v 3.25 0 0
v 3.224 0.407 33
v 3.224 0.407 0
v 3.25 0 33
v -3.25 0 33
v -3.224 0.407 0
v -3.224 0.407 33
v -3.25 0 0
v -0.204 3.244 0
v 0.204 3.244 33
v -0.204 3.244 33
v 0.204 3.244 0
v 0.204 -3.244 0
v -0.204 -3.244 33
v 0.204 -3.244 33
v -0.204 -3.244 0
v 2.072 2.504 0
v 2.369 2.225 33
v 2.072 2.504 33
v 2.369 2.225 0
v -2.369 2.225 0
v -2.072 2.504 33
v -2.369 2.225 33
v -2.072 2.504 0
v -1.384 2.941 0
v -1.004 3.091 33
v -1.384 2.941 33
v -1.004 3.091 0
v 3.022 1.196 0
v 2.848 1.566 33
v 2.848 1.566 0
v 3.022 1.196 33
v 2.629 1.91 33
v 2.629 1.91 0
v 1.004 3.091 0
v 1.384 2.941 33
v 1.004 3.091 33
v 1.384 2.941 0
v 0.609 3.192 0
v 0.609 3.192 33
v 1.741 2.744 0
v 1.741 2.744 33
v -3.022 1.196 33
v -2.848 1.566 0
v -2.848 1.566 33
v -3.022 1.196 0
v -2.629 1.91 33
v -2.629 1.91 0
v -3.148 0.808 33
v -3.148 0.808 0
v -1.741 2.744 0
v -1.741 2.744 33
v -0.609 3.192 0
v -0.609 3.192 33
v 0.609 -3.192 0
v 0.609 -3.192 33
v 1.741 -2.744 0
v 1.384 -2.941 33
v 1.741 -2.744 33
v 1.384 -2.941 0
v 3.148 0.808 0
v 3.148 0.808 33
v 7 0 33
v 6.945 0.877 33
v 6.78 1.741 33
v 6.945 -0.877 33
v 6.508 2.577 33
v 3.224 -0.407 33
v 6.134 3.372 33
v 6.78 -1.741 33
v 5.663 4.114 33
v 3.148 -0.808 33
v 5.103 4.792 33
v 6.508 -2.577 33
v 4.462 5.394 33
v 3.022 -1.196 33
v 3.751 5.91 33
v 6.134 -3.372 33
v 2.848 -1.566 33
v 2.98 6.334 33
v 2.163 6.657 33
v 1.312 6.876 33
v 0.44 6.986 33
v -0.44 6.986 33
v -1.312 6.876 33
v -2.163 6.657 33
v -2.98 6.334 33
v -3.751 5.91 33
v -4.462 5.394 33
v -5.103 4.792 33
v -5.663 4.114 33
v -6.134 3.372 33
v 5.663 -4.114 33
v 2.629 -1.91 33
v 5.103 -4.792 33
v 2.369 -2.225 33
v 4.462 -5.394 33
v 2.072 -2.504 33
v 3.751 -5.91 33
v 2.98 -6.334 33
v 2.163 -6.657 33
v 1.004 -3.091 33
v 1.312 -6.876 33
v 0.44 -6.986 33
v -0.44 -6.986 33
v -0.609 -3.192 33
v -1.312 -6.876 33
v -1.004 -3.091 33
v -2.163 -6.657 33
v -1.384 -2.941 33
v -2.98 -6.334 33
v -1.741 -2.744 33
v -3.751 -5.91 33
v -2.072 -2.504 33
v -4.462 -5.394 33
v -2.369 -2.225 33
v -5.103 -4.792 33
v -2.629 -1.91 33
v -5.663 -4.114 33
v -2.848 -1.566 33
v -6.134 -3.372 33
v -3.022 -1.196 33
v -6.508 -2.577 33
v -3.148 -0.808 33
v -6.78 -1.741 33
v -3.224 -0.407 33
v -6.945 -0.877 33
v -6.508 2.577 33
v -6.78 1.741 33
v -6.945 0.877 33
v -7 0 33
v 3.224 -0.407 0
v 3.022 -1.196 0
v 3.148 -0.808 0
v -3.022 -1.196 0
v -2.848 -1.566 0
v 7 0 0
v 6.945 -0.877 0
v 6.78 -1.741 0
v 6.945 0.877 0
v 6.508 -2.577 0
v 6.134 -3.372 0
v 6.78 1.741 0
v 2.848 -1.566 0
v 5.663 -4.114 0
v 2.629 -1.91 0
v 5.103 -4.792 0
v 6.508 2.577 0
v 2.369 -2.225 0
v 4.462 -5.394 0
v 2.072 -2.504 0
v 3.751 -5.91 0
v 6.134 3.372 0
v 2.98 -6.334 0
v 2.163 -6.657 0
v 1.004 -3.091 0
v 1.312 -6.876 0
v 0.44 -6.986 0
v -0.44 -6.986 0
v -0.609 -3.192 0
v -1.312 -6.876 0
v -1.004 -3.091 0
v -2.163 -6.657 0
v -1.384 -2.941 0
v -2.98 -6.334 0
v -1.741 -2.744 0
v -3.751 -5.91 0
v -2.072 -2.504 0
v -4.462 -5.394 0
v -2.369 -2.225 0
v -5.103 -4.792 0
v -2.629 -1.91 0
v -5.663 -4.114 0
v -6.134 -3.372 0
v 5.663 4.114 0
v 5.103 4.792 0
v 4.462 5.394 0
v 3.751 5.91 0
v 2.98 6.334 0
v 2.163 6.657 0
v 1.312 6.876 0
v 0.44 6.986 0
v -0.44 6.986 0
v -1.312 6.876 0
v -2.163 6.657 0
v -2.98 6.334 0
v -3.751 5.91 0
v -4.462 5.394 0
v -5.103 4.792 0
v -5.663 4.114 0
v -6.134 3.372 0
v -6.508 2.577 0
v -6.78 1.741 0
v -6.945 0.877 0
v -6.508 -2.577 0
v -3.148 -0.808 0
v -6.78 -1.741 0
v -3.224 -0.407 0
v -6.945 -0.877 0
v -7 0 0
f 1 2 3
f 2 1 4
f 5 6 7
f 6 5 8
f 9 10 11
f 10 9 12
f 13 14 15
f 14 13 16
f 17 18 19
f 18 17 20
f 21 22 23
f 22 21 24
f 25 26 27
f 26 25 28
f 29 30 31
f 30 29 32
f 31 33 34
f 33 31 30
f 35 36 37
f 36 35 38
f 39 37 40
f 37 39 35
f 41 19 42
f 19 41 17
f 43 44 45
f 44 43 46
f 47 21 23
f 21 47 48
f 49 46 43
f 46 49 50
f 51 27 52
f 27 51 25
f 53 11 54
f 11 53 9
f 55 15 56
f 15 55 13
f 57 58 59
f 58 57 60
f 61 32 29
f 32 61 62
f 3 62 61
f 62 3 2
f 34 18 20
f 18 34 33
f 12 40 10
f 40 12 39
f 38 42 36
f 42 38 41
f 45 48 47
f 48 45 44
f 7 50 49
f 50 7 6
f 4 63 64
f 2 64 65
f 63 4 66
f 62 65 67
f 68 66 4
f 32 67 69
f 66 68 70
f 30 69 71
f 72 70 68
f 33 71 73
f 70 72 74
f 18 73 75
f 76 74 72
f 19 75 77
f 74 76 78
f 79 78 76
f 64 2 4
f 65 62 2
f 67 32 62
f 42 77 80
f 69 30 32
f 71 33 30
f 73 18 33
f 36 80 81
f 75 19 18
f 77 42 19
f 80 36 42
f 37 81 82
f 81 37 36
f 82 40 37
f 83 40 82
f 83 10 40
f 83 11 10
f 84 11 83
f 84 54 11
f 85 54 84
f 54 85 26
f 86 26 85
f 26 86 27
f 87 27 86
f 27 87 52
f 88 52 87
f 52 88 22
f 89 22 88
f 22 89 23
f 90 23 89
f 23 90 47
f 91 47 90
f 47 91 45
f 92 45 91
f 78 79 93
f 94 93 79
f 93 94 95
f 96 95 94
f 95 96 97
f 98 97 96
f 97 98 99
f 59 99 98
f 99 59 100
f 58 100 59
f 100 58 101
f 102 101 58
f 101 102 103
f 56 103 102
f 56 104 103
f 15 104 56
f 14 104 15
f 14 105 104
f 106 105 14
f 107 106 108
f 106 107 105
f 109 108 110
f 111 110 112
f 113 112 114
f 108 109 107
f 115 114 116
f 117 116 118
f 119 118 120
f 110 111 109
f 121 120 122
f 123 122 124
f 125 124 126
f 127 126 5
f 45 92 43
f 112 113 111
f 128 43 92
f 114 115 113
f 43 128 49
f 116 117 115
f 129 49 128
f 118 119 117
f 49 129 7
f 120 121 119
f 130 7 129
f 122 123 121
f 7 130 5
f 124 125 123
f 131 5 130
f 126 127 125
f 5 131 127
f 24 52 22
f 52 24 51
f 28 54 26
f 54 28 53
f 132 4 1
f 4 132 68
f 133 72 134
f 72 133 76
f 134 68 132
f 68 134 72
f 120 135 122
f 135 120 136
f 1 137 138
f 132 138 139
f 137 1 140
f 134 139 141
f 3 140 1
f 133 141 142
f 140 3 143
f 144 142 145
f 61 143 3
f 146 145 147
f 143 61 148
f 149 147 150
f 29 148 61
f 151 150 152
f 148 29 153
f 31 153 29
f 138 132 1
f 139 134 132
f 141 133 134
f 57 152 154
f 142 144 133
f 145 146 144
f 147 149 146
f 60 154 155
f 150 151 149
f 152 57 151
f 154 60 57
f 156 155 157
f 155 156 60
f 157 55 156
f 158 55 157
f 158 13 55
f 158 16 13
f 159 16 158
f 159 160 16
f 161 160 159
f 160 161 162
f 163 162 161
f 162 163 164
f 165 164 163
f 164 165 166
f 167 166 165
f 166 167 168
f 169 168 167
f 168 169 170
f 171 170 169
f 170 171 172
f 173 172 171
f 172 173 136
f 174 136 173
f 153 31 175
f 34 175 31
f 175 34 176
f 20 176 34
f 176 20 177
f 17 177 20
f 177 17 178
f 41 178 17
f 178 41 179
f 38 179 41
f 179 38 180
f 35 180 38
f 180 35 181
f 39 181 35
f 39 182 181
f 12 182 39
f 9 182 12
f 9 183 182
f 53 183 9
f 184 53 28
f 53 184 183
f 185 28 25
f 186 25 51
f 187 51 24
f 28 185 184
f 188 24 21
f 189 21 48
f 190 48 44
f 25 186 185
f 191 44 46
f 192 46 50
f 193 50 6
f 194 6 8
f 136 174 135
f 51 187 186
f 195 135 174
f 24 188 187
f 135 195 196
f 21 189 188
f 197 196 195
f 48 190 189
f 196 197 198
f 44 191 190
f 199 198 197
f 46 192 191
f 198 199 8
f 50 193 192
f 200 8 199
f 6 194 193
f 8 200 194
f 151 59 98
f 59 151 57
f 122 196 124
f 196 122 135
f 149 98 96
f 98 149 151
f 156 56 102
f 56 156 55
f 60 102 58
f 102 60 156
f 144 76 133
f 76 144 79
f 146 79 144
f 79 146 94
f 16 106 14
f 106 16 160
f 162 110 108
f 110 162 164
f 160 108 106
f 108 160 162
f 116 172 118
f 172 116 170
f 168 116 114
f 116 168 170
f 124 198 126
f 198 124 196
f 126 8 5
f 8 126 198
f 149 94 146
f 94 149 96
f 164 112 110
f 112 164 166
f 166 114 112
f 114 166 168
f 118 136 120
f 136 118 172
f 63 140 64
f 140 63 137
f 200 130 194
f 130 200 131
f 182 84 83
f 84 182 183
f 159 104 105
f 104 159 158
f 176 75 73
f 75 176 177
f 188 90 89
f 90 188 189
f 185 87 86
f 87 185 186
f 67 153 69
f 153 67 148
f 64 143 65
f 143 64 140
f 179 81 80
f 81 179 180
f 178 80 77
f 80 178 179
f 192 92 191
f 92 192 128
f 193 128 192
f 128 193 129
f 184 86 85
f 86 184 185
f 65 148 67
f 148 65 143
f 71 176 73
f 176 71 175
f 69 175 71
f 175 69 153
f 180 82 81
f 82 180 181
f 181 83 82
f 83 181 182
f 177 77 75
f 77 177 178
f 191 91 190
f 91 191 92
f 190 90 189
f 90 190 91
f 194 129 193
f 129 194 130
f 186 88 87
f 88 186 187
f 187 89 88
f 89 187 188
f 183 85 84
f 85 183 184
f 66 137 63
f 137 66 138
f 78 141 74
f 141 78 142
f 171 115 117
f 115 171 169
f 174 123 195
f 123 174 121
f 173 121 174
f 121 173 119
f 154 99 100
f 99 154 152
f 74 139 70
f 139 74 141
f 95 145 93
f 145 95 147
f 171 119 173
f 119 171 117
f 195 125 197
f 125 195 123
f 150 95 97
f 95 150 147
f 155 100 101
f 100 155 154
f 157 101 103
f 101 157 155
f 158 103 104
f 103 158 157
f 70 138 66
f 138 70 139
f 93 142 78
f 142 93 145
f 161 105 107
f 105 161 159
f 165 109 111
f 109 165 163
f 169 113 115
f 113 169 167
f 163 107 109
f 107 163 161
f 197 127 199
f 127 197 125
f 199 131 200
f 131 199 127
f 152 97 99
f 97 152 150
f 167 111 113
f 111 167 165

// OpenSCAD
$fn = 50;


difference() {
	union() {
		cylinder(h = 33, r = 7.0000000000);
	}
	union() {
		translate(v = [0.0000000000, 0.0000000000, -100.0000000000]) {
			cylinder(h = 200, r = 3.2500000000);
		}
		translate(v = [0.0000000000, 0.0000000000, -100.0000000000]) {
			cylinder(h = 200, r = 3.2500000000);
		}
		translate(v = [0.0000000000, 0.0000000000, -100.0000000000]) {
			cylinder(h = 200, r = 3.2500000000);
		}
		translate(v = [0.0000000000, 0.0000000000, -100.0000000000]) {
			cylinder(h = 200, r = 3.2500000000);
		}
	}
}
